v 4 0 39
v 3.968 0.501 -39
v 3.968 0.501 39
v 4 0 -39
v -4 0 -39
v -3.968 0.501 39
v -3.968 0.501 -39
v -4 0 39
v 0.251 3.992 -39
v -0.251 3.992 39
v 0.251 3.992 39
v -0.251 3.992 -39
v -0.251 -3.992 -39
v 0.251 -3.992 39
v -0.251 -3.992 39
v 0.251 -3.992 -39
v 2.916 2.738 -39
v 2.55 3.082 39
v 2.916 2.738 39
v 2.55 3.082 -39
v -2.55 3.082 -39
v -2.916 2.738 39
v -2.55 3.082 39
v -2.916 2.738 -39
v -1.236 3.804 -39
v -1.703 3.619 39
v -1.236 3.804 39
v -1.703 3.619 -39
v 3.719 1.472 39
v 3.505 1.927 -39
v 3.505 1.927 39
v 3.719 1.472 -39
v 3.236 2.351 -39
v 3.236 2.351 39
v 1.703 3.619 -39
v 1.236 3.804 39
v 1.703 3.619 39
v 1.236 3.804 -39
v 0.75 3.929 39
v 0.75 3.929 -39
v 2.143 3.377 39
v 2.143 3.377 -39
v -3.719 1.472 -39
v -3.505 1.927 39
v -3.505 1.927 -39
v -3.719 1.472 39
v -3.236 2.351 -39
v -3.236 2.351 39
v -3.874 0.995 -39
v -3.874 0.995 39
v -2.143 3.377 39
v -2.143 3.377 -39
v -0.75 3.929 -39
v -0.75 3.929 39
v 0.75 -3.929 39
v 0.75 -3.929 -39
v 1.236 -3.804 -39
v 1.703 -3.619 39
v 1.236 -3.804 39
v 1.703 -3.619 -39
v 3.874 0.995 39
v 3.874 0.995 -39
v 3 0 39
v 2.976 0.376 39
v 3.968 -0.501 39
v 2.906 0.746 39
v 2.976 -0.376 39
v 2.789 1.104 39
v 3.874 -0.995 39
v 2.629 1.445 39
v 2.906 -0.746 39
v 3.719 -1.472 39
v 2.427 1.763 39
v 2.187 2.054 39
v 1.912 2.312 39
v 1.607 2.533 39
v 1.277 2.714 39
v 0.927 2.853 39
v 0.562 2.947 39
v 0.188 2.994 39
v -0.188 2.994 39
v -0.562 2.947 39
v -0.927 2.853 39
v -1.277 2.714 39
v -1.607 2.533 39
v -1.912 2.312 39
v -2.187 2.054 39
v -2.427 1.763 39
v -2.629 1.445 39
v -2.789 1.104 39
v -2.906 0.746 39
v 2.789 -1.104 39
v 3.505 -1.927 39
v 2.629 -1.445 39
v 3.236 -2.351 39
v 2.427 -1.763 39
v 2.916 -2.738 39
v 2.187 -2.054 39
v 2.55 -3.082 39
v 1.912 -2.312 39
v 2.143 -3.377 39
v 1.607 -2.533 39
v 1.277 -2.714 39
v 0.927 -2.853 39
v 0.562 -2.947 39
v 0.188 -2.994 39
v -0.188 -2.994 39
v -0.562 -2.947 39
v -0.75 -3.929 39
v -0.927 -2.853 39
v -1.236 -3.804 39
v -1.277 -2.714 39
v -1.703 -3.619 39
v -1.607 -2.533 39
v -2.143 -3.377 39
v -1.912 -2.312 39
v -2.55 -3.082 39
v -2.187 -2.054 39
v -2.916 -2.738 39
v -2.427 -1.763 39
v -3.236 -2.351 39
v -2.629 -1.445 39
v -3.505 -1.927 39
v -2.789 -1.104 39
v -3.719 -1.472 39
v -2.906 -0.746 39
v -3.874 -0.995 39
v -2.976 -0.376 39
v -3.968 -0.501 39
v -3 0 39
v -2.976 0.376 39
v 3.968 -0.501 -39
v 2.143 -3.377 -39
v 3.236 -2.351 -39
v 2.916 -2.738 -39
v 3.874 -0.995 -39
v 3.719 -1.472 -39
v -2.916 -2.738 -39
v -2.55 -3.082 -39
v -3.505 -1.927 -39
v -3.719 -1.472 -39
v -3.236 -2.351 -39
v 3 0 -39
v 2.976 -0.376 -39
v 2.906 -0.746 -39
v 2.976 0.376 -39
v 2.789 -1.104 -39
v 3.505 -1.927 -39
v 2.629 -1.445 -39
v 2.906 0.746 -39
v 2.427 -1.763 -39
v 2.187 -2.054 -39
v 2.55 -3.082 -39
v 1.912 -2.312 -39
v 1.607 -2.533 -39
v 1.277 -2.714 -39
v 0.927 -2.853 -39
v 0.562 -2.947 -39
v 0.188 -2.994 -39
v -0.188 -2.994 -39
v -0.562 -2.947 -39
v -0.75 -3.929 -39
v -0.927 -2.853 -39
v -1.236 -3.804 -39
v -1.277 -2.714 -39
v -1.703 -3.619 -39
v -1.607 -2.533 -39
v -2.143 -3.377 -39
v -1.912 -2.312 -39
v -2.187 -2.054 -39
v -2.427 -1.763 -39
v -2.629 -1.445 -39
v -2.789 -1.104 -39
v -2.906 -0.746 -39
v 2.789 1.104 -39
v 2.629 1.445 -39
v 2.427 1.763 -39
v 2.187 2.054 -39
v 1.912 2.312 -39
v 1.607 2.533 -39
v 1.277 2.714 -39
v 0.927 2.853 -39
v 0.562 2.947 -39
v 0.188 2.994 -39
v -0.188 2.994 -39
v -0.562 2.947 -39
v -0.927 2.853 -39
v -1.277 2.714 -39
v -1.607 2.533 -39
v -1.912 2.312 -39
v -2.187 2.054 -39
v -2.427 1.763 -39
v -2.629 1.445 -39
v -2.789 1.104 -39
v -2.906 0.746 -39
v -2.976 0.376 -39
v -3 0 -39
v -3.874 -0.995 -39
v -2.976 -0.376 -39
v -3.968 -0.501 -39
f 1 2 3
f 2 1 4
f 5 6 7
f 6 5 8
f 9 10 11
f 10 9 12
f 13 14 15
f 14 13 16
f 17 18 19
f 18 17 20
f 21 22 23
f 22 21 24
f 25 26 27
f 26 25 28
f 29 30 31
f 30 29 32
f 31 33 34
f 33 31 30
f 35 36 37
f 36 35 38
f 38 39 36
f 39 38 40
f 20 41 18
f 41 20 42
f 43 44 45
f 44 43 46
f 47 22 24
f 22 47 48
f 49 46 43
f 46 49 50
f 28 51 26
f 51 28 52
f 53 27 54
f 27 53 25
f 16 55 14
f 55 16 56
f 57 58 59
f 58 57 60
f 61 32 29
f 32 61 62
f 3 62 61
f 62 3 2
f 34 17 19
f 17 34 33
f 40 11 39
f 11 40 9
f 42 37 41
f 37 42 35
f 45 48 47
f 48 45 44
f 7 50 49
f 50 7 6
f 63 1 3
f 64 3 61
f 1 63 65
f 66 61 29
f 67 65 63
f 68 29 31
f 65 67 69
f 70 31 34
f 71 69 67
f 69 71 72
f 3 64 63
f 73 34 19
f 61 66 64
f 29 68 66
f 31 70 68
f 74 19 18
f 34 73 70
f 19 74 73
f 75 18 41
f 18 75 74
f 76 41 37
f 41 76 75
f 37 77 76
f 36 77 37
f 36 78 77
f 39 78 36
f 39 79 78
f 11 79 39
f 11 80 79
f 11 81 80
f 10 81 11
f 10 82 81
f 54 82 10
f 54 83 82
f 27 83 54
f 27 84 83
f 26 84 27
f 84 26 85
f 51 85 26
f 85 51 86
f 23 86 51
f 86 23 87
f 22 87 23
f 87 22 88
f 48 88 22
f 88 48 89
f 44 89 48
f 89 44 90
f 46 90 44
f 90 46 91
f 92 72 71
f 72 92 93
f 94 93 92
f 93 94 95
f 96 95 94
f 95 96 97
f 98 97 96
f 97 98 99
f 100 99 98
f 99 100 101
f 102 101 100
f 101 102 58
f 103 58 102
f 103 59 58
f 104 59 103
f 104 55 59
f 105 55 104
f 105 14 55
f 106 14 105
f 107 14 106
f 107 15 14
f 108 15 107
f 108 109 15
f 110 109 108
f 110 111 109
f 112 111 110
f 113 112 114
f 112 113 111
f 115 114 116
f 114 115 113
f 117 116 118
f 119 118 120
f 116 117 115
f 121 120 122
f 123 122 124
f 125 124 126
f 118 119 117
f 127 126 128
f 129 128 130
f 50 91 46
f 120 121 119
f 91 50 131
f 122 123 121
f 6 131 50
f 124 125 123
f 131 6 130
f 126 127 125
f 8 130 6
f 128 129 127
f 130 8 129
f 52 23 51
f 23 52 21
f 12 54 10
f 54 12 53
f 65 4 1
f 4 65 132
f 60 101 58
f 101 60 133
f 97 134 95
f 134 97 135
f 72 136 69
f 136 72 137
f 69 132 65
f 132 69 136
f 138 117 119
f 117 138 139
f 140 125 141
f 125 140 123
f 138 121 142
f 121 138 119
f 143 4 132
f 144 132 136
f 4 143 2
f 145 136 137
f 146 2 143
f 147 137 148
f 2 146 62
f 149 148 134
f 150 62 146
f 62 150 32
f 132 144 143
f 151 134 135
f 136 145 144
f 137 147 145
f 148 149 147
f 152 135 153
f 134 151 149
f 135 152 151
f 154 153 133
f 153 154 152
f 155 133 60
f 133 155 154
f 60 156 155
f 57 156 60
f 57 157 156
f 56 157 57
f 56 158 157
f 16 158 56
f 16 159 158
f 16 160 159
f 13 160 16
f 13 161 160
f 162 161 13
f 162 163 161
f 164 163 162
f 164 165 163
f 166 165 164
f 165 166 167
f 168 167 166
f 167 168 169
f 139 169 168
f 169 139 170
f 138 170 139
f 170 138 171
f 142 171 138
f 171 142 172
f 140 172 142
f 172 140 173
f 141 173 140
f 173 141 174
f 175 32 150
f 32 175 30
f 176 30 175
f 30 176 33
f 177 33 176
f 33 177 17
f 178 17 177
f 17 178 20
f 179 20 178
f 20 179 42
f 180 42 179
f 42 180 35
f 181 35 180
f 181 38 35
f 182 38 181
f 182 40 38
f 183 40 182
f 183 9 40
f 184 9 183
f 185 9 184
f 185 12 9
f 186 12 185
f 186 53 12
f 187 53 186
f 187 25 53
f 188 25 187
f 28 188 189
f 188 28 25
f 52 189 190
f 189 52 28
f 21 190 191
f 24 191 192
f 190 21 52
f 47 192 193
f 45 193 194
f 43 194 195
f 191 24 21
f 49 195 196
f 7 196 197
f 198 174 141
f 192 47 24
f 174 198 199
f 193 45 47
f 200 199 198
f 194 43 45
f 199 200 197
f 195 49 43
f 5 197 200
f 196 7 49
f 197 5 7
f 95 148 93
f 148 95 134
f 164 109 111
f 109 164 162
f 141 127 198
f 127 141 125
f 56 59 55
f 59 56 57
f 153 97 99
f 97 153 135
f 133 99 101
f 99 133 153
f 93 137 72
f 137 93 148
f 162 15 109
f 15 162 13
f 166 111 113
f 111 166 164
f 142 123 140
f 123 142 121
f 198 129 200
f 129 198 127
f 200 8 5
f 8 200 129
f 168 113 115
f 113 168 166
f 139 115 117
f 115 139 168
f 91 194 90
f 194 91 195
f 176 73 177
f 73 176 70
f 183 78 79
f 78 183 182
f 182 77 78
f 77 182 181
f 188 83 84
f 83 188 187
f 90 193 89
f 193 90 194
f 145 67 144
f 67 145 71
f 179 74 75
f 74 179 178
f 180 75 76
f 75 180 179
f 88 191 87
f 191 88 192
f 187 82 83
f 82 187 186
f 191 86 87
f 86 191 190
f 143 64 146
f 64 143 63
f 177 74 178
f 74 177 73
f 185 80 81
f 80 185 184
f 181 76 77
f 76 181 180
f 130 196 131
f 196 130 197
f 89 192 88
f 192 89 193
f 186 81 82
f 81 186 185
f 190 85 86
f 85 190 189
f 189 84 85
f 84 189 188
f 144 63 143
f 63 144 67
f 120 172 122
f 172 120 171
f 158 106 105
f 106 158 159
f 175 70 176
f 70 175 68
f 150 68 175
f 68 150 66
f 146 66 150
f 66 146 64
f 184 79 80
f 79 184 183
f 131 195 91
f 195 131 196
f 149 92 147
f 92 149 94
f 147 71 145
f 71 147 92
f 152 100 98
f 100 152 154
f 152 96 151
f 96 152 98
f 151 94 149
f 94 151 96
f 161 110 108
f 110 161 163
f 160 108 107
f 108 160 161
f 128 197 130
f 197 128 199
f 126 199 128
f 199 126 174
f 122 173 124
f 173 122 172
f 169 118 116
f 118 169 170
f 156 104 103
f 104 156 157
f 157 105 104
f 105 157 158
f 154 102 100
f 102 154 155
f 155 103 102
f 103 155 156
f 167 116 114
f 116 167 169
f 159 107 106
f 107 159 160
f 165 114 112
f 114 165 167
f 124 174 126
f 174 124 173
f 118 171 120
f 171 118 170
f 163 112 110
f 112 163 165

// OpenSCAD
$fn = 50;


difference() {
	union() {
		translate(v = [0, 0, -39.0000000000]) {
			cylinder(h = 78, r = 4.0000000000);
		}
	}
	union() {
		translate(v = [0, 0, -100.0000000000]) {
			cylinder(h = 200, r = 3);
		}
	}
}
